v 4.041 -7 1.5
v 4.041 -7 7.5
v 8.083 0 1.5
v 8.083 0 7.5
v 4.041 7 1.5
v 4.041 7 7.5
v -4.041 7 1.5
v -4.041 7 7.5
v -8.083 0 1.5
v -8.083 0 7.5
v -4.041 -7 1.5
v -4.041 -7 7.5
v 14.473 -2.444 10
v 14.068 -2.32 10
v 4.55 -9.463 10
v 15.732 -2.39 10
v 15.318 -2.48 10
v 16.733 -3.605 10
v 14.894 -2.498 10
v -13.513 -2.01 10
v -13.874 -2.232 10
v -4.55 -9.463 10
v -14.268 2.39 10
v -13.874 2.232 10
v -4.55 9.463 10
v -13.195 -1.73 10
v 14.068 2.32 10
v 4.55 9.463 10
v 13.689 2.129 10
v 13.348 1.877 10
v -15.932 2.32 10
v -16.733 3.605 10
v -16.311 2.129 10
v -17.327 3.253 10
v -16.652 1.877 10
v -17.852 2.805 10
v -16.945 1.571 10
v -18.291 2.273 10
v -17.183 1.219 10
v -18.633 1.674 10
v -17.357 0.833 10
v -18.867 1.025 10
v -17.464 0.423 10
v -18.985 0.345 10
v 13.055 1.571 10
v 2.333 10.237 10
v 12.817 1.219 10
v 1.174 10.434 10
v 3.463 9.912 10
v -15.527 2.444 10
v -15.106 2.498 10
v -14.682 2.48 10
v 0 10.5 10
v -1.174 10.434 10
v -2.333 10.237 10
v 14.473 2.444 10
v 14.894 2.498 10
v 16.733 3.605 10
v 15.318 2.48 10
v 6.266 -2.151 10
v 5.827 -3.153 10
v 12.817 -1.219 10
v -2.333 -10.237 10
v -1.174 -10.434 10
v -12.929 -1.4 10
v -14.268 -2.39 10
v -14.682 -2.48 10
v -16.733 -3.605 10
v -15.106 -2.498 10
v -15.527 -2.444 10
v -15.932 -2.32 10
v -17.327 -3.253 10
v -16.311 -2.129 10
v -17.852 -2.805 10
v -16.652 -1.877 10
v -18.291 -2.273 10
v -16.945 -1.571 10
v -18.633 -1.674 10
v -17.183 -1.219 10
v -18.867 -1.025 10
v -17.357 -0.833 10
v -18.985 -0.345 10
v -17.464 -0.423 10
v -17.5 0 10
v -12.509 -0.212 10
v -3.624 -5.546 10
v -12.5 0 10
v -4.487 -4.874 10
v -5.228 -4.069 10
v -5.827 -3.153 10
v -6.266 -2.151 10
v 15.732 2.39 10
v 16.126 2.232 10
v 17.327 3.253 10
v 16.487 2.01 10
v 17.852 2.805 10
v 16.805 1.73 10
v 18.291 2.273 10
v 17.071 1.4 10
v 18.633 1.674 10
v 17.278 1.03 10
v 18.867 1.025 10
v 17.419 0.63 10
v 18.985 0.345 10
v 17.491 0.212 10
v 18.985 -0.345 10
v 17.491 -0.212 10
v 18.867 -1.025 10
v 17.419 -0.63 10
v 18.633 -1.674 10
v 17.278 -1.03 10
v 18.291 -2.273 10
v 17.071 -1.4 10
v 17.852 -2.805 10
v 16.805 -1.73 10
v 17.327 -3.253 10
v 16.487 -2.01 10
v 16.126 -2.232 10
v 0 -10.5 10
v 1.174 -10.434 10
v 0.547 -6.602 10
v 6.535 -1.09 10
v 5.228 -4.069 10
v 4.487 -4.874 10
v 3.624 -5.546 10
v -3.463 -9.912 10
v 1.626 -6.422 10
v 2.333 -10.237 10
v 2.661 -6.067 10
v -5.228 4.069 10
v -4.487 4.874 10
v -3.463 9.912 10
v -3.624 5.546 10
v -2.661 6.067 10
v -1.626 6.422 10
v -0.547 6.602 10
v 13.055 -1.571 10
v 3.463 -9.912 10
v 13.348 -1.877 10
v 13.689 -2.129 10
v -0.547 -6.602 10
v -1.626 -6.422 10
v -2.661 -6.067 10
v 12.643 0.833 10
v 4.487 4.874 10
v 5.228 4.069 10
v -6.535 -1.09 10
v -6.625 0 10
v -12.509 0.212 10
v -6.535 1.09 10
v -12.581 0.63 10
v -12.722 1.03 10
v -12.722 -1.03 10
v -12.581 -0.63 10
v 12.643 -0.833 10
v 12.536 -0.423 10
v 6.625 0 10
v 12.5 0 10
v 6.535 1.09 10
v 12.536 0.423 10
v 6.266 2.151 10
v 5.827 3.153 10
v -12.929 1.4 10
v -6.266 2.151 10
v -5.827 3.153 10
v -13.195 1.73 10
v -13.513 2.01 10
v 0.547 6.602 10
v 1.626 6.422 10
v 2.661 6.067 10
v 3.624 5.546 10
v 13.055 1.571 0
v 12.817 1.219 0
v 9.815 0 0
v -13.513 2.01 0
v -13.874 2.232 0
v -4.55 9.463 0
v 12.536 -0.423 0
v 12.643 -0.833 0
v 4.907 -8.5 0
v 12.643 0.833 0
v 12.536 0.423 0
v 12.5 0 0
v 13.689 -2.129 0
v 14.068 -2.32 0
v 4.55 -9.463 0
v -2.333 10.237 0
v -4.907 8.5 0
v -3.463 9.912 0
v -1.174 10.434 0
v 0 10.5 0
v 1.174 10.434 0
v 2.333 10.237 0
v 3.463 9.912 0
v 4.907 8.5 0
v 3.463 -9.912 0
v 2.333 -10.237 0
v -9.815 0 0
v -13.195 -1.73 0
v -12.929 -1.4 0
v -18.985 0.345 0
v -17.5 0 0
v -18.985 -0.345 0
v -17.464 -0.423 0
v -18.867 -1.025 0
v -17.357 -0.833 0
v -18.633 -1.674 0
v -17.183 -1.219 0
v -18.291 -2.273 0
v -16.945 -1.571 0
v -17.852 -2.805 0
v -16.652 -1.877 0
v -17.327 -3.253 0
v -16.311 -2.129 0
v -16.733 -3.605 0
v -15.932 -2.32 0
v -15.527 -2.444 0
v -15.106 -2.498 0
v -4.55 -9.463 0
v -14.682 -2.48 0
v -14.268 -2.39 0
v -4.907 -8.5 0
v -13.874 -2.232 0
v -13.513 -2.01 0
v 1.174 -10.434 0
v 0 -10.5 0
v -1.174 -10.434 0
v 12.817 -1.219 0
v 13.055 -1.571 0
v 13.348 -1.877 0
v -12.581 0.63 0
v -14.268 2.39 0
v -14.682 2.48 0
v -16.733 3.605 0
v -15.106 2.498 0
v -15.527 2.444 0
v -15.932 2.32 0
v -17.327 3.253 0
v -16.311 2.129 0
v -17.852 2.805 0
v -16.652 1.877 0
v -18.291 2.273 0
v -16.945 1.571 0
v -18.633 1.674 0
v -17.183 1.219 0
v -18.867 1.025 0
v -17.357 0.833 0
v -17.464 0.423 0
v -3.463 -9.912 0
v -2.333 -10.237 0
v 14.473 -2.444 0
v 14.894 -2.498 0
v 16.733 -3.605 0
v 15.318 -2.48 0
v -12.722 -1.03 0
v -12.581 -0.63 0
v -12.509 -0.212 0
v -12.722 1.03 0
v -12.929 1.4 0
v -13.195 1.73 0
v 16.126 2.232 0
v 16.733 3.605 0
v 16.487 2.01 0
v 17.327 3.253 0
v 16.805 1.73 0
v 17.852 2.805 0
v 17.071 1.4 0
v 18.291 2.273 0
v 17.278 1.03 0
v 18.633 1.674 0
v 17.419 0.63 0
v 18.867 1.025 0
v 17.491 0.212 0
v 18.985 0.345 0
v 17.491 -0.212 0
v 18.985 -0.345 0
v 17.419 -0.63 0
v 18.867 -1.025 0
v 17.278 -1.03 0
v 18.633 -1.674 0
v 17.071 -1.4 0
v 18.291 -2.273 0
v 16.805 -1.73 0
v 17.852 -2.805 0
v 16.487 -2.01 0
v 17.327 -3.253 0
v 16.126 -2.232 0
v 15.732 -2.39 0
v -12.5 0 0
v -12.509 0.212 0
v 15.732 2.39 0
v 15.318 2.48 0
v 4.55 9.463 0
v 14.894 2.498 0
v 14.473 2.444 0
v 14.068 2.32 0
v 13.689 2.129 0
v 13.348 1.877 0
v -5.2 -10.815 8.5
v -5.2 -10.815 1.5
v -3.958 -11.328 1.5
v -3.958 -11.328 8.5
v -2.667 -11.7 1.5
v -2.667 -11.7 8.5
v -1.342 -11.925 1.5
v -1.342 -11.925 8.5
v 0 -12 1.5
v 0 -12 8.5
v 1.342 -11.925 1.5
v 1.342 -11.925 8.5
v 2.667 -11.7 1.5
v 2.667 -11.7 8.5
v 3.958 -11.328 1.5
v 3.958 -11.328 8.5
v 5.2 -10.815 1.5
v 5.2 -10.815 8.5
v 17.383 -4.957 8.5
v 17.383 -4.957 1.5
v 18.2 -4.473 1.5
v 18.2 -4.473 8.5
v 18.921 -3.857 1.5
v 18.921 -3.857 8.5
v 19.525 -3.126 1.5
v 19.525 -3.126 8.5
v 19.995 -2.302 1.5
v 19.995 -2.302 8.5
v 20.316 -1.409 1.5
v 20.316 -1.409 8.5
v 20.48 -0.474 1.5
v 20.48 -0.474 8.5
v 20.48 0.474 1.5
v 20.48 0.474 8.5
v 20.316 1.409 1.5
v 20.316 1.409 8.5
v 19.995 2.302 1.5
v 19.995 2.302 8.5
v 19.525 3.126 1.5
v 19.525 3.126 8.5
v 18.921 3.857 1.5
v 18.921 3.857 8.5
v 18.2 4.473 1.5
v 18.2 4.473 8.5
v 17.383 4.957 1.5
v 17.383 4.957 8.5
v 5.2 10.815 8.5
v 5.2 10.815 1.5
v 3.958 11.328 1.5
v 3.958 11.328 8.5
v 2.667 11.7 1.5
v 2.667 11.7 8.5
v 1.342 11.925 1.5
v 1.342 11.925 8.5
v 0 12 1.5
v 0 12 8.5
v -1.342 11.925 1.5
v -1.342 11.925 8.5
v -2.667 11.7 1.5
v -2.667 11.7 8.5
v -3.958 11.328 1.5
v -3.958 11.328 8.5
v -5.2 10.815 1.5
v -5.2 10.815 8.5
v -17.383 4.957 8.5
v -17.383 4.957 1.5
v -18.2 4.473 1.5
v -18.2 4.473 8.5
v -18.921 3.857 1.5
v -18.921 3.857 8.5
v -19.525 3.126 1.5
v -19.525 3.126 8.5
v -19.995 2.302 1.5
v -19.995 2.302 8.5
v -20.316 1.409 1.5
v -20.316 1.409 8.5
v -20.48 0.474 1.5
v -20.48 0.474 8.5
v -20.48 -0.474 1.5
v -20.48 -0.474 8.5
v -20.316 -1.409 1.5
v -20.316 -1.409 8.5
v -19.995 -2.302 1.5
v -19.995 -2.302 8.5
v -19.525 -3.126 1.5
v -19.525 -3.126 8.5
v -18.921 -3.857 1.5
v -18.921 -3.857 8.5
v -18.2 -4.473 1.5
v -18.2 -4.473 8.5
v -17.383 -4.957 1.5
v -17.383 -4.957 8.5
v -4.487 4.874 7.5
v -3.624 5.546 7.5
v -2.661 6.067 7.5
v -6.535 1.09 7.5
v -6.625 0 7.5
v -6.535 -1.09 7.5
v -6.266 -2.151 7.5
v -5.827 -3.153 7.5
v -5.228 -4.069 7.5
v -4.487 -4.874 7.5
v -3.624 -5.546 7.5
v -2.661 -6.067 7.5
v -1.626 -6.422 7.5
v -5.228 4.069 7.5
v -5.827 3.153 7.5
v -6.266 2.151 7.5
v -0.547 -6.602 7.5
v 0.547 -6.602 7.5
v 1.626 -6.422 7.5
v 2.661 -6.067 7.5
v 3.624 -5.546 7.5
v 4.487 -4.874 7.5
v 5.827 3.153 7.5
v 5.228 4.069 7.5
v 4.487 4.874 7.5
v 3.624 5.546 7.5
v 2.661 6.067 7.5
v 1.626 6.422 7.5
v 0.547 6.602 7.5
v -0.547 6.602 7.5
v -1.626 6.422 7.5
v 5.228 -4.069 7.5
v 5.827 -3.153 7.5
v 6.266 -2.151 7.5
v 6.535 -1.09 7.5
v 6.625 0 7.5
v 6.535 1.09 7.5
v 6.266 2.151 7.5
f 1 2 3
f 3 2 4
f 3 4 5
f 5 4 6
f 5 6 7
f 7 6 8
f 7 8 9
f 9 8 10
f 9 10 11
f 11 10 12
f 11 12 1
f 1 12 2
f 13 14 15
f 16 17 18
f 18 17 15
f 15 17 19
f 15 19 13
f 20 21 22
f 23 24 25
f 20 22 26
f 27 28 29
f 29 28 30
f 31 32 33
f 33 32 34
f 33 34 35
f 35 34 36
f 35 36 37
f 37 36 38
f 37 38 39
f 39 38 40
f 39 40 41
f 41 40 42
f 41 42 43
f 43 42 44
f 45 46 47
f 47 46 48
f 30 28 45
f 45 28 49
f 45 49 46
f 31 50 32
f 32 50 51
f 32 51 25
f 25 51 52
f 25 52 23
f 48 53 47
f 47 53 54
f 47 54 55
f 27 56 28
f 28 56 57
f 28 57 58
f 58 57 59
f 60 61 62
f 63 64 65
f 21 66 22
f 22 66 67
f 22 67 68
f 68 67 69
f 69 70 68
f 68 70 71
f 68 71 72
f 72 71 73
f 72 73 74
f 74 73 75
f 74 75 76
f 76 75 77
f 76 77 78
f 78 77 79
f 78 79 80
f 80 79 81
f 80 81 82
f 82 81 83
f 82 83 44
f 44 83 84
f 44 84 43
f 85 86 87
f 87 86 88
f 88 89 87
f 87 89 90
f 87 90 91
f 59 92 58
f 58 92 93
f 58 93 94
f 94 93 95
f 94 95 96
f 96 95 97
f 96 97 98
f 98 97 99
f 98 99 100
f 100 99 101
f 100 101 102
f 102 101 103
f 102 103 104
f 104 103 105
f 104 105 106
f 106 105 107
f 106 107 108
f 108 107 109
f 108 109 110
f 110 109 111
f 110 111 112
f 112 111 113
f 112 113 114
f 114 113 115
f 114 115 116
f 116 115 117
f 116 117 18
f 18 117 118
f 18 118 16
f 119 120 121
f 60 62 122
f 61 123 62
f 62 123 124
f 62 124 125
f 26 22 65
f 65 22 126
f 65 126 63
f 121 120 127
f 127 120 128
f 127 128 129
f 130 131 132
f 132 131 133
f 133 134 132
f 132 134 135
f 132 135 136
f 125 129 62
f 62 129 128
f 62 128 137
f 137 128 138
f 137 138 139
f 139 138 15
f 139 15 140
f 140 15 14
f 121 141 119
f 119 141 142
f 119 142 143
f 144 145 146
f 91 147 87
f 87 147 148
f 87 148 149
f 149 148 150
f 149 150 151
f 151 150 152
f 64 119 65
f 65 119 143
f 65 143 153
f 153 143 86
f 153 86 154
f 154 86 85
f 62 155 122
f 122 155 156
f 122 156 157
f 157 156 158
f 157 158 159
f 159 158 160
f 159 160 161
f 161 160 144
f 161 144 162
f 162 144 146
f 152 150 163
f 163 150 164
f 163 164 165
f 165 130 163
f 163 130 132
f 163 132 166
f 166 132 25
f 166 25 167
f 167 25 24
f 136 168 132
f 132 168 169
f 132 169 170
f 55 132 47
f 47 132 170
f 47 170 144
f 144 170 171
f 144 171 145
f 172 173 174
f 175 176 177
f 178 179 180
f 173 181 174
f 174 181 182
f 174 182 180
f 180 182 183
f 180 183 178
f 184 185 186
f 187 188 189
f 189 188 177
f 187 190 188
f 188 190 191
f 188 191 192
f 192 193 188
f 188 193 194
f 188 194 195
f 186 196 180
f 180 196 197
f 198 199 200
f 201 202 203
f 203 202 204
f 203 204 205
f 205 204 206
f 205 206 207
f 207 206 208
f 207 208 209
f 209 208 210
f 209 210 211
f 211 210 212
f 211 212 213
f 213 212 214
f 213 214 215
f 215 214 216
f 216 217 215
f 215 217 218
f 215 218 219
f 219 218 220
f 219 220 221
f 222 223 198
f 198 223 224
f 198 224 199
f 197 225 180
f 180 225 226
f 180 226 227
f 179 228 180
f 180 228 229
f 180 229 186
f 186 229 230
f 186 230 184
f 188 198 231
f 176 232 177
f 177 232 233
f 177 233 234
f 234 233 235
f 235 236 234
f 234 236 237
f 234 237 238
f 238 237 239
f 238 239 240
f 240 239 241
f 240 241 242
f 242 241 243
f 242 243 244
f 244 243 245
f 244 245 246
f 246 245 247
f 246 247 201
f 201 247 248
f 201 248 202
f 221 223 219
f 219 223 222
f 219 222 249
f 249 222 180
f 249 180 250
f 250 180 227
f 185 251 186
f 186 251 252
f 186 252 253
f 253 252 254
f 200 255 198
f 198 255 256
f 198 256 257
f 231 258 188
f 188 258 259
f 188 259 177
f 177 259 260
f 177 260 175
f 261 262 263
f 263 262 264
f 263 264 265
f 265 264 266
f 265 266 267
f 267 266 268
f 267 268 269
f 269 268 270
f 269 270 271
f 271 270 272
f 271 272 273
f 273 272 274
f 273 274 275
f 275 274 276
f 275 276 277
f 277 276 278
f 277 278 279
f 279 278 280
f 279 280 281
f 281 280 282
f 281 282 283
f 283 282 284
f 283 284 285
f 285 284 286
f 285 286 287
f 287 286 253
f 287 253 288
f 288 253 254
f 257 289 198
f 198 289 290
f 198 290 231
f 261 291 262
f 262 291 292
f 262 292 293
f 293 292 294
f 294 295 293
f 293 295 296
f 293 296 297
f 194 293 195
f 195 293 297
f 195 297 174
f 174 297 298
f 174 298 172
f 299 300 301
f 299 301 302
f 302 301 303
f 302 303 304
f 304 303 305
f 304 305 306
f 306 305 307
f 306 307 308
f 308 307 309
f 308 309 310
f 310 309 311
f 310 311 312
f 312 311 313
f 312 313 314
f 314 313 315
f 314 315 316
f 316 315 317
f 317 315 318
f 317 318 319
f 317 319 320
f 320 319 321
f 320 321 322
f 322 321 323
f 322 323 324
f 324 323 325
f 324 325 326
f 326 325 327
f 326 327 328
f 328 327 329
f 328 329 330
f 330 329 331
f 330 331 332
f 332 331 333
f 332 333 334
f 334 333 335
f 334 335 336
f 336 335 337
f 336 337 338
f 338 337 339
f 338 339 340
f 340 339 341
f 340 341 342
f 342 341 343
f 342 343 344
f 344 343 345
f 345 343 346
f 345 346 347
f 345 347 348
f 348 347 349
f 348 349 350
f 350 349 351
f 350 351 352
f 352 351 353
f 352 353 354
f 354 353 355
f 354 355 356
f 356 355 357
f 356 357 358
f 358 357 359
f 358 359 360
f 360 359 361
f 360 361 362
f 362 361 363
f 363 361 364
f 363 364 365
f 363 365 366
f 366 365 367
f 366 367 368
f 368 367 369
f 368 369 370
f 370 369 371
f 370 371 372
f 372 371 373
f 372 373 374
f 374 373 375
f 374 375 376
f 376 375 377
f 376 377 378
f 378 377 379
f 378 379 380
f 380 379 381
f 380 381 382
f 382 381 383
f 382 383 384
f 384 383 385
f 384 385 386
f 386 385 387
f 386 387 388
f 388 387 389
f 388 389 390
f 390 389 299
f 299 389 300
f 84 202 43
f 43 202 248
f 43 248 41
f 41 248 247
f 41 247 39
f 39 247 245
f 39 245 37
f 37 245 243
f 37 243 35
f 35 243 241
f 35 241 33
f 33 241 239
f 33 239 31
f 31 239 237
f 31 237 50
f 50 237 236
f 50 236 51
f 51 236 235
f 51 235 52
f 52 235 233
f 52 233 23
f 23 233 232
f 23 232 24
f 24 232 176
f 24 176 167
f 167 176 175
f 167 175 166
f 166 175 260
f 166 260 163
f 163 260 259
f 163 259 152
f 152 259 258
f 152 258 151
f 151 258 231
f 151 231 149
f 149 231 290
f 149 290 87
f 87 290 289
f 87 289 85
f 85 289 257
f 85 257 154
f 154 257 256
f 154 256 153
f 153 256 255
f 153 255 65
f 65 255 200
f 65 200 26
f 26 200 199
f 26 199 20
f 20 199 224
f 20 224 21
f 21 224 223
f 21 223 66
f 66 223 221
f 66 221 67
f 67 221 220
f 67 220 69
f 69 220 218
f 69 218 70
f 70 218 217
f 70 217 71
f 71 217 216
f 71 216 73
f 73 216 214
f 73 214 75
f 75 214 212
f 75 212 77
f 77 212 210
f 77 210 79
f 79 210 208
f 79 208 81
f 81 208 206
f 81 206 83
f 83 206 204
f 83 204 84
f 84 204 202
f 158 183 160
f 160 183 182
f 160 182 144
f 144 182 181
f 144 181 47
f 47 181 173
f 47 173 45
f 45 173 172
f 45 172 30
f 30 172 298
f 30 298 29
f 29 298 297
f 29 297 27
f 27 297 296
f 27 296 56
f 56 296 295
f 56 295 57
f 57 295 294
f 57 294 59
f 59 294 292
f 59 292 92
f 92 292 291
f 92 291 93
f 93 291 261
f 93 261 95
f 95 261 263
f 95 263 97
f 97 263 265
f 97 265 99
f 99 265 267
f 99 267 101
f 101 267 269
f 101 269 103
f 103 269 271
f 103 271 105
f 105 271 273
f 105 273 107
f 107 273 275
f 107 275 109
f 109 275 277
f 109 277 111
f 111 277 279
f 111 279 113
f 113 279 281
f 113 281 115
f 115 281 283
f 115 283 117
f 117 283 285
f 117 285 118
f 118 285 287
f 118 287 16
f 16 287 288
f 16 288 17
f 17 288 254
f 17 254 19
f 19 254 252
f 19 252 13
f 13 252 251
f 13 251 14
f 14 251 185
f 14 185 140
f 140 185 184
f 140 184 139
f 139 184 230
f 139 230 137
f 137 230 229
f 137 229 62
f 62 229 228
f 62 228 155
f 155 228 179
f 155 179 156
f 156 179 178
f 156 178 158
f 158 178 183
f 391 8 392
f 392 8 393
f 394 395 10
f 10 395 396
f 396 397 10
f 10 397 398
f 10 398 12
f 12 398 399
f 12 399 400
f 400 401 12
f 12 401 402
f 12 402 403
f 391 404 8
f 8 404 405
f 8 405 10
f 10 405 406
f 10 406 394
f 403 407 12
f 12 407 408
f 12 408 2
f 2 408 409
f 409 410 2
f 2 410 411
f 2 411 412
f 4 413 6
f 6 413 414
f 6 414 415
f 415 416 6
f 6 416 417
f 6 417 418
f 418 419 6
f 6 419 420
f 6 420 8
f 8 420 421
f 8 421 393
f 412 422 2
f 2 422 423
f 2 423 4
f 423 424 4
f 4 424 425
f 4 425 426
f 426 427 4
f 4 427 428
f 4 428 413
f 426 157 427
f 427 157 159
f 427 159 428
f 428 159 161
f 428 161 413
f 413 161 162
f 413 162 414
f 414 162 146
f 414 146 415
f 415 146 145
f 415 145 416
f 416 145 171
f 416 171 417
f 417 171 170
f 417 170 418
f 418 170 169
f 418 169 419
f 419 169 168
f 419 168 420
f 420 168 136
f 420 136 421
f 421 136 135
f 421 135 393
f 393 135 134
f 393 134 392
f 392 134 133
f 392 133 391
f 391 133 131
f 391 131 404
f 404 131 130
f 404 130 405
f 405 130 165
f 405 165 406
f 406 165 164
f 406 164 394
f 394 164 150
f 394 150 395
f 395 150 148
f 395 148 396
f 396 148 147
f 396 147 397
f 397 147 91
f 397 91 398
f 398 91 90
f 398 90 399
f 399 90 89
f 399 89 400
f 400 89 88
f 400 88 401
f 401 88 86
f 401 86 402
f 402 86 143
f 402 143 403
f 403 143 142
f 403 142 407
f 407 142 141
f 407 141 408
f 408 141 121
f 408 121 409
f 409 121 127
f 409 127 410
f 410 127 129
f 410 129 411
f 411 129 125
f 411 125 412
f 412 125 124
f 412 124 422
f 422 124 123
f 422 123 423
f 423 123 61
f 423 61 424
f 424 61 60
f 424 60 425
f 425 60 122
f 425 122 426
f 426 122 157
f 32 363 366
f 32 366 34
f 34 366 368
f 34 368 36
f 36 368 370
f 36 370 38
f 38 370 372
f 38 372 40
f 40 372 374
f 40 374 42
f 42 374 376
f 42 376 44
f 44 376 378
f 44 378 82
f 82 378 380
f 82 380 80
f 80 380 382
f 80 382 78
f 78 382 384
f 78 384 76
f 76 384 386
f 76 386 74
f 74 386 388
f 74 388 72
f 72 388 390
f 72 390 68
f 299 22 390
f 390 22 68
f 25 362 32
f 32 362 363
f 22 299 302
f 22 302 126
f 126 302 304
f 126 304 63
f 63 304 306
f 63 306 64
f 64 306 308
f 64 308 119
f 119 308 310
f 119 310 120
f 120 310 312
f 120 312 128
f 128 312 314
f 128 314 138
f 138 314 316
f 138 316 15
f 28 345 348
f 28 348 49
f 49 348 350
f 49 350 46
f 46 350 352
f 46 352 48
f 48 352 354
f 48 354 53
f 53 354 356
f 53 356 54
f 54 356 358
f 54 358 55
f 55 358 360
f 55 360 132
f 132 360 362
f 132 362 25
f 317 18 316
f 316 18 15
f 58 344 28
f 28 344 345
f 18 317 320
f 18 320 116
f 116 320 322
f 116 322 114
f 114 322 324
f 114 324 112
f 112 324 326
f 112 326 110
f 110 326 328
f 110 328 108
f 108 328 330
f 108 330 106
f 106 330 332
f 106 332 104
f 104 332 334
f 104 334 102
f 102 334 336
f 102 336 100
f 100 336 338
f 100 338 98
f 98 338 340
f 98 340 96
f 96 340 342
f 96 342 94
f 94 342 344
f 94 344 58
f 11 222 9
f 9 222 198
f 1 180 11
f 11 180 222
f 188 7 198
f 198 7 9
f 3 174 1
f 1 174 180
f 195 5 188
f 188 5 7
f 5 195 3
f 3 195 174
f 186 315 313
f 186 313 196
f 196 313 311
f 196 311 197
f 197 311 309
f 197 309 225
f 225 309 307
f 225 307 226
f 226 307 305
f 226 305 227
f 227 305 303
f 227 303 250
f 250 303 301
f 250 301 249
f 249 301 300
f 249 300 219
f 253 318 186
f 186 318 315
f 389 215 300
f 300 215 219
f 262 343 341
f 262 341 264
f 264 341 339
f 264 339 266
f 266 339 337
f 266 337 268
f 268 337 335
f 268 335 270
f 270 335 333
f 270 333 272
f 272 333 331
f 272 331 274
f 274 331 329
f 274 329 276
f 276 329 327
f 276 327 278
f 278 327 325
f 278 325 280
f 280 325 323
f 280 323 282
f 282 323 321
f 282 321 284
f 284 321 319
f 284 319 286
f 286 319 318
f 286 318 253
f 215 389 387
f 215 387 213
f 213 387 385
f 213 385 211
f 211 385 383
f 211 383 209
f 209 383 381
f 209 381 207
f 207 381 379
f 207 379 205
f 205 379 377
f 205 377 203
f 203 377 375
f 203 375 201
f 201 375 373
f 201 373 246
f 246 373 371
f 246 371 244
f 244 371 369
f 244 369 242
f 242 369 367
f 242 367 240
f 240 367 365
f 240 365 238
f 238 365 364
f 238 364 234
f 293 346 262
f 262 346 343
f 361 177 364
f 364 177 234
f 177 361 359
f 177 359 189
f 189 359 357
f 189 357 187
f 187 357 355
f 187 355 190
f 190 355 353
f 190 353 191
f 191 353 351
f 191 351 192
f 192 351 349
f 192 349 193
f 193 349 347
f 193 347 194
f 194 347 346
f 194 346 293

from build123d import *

# Parameters (mm, degrees)
SKETCH1_R           = 2.5
BOSS_EXTRUDE1_DEPTH = 10
SKETCH2_R           = 8.082903769
SKETCH2_R_2         = 6.625
BOSS_EXTRUDE3_DEPTH = 2.5
CHAMFER1_SIZE       = 1.5


with BuildPart() as part:
    # Sketch1 → Boss-Extrude1 (new body)
    with BuildSketch(Plane.XY):
        with BuildLine():
            Line((-5.2, -10.814804668), (-17.383333333, -4.956785473))
            ThreePointArc((-17.383333333, -4.956785473), (-20.5, 0), (-17.383333333, 4.956785473))
            Line((-17.383333333, 4.956785473), (-5.2, 10.814804668))
            ThreePointArc((-5.2, 10.814804668), (0, 12), (5.2, 10.814804668))
            Line((5.2, 10.814804668), (17.383333333, 4.956785473))
            ThreePointArc((17.383333333, 4.956785473), (20.5, 0), (17.383333333, -4.956785473))
            Line((17.383333333, -4.956785473), (5.2, -10.814804668))
            ThreePointArc((5.2, -10.814804668), (0, -12), (-5.2, -10.814804668))
        make_face()
        with Locations((-15, 0)):
            Circle(SKETCH1_R, mode=Mode.SUBTRACT)
        with Locations(Location((15, 0, 0), (0, 0, 180))):
            Circle(SKETCH1_R, mode=Mode.SUBTRACT)
        Polygon((8.082903769, 0), (4.041451884, 7), (-4.041451884, 7), (-8.082903769, 0), (-4.041451884, -7), (4.041451884, -7), align=None, mode=Mode.SUBTRACT)
    extrude(amount=BOSS_EXTRUDE1_DEPTH)

    # Sketch2 → Boss-Extrude3 (add)
    with BuildSketch(Plane.XY.offset(10)):
        Circle(SKETCH2_R)
        Circle(SKETCH2_R_2, mode=Mode.SUBTRACT)
    extrude(amount=-BOSS_EXTRUDE3_DEPTH)

    # Chamfer1
    chamfer1_edges = [part.edges().sort_by_distance(p)[0] for p in [
        (11.291666667, 7.88579507, 0),
        (20.5, 0, 0),
        (11.291666667, -7.88579507, 0),
        (0, -12, 0),
        (20.5, 0, 10),
        (11.291666667, 7.88579507, 10),
        (0, 12, 10),
        (-11.291666667, 7.88579507, 10),
        (-20.5, 0, 10),
        (6.062177826, -3.5, 0),
        (6.062177826, 3.5, 0),
        (0, 7, 0),
        (-6.062177826, 3.5, 0),
        (-6.062177826, -3.5, 0),
        (0, -7, 0),
        (-11.291666667, -7.88579507, 10),
        (0, -12, 10),
        (-11.291666667, -7.88579507, 0),
        (11.291666667, -7.88579507, 10),
        (-20.5, 0, 0),
        (-11.291666667, 7.88579507, 0),
        (0, 12, 0),
    ]]
    chamfer(chamfer1_edges, length=CHAMFER1_SIZE)


solid = part.part
